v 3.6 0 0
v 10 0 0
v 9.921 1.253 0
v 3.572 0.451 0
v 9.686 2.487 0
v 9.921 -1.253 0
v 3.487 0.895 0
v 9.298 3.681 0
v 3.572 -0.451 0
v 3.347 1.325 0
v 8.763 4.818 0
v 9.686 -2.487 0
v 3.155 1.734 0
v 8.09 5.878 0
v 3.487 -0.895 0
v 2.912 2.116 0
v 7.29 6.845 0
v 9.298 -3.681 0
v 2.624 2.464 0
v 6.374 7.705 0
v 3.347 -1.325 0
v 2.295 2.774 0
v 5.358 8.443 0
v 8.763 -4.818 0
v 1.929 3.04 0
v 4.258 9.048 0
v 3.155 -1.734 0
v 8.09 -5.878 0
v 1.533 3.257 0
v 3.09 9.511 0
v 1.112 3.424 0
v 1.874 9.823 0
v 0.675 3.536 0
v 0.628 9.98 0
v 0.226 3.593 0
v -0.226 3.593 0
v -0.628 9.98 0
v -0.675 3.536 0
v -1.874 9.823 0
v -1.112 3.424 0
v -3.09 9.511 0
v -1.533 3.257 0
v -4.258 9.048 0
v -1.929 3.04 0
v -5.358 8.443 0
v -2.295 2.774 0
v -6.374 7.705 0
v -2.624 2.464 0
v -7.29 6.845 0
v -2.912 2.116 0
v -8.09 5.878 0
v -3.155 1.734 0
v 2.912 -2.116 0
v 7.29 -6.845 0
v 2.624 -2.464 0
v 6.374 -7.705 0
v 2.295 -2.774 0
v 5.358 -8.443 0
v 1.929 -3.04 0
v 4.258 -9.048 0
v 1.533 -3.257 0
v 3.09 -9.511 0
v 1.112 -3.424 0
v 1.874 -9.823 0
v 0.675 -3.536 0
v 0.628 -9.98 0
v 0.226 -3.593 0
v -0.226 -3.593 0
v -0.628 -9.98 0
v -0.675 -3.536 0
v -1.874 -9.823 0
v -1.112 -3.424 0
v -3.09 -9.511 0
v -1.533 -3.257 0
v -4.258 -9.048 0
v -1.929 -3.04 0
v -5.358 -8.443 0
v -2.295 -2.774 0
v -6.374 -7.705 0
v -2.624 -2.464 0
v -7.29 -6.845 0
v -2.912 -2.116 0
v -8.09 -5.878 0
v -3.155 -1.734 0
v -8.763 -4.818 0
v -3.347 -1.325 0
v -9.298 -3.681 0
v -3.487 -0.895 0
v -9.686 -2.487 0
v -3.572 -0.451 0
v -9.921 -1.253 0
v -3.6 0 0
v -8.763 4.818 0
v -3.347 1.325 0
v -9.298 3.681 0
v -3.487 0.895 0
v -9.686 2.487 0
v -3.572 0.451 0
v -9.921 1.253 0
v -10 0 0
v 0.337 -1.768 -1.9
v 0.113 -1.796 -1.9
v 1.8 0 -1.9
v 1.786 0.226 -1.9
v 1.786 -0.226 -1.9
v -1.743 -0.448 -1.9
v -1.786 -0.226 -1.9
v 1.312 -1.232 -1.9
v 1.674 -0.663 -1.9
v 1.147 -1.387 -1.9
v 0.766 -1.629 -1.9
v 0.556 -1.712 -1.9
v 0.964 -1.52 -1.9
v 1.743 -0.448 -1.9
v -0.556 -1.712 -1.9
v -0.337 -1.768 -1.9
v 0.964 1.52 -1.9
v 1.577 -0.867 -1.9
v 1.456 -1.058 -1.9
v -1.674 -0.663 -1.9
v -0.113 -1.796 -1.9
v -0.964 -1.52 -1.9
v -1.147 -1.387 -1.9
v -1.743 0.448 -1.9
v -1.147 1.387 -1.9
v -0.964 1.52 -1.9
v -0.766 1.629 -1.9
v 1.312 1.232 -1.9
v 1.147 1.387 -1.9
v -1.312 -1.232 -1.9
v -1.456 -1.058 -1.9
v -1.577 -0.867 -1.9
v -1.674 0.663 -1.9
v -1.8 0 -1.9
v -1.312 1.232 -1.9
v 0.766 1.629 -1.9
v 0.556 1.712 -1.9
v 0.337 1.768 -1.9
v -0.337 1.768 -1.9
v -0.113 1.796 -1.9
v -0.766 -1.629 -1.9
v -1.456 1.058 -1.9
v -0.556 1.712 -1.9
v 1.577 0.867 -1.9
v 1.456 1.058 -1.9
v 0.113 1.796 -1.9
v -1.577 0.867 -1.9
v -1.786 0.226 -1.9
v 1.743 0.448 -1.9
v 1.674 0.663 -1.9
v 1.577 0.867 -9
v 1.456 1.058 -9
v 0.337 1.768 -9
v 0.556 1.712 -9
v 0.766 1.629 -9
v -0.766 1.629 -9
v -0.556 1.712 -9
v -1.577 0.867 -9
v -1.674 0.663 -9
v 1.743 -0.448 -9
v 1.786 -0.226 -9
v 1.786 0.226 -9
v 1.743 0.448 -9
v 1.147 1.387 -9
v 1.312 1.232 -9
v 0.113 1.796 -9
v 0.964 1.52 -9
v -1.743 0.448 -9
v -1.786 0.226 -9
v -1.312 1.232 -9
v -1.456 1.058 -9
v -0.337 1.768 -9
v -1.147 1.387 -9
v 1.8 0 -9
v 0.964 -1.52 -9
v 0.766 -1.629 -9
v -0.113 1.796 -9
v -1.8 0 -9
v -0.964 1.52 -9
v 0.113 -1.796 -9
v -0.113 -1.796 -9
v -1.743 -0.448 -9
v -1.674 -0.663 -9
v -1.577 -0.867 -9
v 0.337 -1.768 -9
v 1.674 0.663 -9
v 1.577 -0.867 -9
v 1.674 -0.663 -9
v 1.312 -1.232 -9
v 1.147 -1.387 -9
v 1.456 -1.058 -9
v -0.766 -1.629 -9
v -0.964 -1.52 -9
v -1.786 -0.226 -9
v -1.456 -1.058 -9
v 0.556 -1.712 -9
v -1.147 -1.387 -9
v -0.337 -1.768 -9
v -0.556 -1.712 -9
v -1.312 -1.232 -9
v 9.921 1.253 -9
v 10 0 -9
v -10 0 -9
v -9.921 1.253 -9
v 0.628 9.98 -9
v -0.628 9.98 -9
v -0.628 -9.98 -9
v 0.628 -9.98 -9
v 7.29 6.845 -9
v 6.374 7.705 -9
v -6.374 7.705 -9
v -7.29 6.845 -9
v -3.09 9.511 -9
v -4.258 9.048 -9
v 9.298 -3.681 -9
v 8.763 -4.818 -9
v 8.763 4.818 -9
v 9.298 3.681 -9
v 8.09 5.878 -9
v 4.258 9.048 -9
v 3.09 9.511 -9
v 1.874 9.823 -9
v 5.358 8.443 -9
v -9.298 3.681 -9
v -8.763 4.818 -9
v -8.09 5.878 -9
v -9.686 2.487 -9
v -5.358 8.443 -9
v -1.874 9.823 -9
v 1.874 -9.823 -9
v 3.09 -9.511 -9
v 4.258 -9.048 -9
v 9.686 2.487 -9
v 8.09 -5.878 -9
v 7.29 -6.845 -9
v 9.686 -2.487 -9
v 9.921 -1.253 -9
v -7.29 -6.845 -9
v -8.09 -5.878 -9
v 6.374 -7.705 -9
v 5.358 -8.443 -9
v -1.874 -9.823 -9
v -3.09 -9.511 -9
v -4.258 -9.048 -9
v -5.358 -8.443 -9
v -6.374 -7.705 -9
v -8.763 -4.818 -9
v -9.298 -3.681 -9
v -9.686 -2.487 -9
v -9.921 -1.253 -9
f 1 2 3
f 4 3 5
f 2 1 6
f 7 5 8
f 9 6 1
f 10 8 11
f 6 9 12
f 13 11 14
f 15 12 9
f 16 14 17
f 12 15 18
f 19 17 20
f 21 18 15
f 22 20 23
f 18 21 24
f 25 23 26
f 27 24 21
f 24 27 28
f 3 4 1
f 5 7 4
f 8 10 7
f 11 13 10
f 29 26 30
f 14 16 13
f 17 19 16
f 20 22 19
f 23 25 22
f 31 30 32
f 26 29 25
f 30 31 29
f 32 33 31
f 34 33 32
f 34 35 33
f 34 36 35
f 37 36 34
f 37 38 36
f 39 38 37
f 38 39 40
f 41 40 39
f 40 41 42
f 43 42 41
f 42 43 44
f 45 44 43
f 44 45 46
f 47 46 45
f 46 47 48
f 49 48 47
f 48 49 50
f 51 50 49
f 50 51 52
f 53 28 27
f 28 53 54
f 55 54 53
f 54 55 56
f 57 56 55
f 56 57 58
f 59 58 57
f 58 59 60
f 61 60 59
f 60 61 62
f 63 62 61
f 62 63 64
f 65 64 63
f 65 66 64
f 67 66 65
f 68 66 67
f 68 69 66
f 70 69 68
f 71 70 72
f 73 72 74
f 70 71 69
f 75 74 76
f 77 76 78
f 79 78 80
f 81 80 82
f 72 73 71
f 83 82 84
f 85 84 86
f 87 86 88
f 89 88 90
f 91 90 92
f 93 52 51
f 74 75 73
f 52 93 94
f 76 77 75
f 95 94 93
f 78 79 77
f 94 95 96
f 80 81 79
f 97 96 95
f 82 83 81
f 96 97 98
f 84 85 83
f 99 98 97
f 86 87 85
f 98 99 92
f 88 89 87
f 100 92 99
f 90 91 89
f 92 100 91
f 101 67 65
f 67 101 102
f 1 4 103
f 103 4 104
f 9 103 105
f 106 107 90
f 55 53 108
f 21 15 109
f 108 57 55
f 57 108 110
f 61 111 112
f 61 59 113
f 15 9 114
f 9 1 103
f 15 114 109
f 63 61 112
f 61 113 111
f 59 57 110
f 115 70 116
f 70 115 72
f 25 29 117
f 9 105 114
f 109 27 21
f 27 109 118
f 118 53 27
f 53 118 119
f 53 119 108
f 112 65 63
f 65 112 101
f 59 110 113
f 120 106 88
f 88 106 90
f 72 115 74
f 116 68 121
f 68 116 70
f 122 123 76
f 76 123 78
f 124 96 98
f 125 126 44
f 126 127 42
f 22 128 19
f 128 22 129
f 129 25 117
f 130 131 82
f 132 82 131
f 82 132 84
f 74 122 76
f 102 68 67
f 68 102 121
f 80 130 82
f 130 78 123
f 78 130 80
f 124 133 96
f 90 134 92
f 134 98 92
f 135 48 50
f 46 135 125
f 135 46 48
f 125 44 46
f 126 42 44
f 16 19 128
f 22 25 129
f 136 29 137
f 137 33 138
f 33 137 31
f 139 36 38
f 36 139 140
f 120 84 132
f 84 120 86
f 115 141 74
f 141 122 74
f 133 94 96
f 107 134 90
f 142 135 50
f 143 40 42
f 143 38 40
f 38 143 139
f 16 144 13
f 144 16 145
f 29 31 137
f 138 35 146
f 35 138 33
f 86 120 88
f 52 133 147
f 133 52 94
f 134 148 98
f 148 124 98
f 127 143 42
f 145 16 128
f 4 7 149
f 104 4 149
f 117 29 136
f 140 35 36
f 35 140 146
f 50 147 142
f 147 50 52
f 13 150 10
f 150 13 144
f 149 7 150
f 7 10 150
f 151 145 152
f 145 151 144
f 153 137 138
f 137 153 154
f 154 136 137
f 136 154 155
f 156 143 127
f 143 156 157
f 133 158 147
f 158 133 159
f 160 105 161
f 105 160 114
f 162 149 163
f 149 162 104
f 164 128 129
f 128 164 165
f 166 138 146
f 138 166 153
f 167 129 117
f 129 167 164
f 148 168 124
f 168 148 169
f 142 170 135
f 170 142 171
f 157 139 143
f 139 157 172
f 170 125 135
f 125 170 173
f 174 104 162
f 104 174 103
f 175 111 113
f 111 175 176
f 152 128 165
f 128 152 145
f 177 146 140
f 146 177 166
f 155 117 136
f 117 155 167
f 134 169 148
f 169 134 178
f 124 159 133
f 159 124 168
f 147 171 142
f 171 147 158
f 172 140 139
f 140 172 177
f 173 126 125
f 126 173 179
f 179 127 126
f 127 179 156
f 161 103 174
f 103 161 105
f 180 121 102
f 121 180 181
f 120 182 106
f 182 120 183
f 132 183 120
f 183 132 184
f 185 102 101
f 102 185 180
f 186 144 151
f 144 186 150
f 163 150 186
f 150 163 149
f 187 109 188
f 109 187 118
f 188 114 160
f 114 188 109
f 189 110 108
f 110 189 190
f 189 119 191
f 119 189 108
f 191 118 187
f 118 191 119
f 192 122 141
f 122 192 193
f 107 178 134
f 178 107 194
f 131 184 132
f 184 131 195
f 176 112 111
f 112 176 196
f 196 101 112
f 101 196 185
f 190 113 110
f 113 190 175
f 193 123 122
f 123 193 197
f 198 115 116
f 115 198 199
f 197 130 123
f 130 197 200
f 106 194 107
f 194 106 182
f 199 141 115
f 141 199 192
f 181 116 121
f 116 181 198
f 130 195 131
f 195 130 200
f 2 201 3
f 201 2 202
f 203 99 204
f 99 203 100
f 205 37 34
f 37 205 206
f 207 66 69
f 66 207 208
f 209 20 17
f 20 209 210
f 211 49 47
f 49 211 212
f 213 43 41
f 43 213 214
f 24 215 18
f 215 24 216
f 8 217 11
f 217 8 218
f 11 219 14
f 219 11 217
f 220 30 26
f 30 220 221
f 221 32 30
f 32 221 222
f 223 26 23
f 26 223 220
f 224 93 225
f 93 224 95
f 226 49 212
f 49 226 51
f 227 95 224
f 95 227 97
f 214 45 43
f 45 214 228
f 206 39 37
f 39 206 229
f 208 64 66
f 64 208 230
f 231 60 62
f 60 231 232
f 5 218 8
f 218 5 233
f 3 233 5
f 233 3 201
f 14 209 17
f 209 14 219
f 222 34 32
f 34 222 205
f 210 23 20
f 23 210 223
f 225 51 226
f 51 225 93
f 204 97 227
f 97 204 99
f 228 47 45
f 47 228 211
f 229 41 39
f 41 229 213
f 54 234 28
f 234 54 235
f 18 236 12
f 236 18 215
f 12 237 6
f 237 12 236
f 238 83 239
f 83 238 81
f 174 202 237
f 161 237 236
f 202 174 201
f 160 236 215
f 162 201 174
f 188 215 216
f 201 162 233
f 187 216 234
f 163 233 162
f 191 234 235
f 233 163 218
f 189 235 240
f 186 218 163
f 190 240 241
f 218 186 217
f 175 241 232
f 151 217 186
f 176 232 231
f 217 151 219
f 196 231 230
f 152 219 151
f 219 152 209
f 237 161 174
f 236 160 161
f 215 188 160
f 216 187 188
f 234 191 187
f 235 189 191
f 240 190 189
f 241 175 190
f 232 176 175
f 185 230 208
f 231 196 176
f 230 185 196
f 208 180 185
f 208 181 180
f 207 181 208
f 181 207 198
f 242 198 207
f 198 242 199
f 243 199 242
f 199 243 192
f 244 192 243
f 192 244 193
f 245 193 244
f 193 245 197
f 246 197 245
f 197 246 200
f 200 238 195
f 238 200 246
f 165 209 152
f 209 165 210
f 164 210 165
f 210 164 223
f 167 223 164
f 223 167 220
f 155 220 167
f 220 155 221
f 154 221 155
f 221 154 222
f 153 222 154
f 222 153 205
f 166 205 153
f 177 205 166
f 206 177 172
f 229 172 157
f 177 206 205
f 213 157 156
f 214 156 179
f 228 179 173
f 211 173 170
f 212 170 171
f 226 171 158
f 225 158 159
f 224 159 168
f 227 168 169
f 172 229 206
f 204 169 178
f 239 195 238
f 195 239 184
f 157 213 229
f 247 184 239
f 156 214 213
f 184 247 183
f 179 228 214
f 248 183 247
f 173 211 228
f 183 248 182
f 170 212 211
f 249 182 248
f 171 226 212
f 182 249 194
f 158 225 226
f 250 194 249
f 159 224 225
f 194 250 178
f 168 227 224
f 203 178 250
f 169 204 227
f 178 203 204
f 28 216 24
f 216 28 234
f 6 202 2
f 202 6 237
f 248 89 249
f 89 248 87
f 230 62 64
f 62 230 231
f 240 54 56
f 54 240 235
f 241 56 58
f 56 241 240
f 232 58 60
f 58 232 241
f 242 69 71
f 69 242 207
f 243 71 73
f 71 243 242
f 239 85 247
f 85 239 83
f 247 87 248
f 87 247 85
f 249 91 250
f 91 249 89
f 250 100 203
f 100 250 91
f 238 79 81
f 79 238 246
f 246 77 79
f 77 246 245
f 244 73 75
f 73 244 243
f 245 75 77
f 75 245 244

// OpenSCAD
$fn = 50;

difference() {
	union() {
		translate(v = [0, 0, -9.0]) {
			cylinder(h = 9, r = 10.0);
		}
	}
	union() {
		translate(v = [0, 0, 0]) {
			rotate(a = [0, 0, 0]) {
				difference() {
					union() {
						translate(v = [0, 0, -12.0]) {
							cylinder(h = 12, r = 1.5);
						}
						translate(v = [0, 0, -1.9]) {
							cylinder(h = 1.9, r1 = 1.8, r2 = 3.6);
						}
						translate(v = [0, 0, -12.0]) {
							cylinder(h = 12, r = 1.8);
						}
						translate(v = [0, 0, -12.0]) {
							cylinder(h = 12, r = 1.5);
						}
					}
					union();
				}
			}
		}
	}
}
